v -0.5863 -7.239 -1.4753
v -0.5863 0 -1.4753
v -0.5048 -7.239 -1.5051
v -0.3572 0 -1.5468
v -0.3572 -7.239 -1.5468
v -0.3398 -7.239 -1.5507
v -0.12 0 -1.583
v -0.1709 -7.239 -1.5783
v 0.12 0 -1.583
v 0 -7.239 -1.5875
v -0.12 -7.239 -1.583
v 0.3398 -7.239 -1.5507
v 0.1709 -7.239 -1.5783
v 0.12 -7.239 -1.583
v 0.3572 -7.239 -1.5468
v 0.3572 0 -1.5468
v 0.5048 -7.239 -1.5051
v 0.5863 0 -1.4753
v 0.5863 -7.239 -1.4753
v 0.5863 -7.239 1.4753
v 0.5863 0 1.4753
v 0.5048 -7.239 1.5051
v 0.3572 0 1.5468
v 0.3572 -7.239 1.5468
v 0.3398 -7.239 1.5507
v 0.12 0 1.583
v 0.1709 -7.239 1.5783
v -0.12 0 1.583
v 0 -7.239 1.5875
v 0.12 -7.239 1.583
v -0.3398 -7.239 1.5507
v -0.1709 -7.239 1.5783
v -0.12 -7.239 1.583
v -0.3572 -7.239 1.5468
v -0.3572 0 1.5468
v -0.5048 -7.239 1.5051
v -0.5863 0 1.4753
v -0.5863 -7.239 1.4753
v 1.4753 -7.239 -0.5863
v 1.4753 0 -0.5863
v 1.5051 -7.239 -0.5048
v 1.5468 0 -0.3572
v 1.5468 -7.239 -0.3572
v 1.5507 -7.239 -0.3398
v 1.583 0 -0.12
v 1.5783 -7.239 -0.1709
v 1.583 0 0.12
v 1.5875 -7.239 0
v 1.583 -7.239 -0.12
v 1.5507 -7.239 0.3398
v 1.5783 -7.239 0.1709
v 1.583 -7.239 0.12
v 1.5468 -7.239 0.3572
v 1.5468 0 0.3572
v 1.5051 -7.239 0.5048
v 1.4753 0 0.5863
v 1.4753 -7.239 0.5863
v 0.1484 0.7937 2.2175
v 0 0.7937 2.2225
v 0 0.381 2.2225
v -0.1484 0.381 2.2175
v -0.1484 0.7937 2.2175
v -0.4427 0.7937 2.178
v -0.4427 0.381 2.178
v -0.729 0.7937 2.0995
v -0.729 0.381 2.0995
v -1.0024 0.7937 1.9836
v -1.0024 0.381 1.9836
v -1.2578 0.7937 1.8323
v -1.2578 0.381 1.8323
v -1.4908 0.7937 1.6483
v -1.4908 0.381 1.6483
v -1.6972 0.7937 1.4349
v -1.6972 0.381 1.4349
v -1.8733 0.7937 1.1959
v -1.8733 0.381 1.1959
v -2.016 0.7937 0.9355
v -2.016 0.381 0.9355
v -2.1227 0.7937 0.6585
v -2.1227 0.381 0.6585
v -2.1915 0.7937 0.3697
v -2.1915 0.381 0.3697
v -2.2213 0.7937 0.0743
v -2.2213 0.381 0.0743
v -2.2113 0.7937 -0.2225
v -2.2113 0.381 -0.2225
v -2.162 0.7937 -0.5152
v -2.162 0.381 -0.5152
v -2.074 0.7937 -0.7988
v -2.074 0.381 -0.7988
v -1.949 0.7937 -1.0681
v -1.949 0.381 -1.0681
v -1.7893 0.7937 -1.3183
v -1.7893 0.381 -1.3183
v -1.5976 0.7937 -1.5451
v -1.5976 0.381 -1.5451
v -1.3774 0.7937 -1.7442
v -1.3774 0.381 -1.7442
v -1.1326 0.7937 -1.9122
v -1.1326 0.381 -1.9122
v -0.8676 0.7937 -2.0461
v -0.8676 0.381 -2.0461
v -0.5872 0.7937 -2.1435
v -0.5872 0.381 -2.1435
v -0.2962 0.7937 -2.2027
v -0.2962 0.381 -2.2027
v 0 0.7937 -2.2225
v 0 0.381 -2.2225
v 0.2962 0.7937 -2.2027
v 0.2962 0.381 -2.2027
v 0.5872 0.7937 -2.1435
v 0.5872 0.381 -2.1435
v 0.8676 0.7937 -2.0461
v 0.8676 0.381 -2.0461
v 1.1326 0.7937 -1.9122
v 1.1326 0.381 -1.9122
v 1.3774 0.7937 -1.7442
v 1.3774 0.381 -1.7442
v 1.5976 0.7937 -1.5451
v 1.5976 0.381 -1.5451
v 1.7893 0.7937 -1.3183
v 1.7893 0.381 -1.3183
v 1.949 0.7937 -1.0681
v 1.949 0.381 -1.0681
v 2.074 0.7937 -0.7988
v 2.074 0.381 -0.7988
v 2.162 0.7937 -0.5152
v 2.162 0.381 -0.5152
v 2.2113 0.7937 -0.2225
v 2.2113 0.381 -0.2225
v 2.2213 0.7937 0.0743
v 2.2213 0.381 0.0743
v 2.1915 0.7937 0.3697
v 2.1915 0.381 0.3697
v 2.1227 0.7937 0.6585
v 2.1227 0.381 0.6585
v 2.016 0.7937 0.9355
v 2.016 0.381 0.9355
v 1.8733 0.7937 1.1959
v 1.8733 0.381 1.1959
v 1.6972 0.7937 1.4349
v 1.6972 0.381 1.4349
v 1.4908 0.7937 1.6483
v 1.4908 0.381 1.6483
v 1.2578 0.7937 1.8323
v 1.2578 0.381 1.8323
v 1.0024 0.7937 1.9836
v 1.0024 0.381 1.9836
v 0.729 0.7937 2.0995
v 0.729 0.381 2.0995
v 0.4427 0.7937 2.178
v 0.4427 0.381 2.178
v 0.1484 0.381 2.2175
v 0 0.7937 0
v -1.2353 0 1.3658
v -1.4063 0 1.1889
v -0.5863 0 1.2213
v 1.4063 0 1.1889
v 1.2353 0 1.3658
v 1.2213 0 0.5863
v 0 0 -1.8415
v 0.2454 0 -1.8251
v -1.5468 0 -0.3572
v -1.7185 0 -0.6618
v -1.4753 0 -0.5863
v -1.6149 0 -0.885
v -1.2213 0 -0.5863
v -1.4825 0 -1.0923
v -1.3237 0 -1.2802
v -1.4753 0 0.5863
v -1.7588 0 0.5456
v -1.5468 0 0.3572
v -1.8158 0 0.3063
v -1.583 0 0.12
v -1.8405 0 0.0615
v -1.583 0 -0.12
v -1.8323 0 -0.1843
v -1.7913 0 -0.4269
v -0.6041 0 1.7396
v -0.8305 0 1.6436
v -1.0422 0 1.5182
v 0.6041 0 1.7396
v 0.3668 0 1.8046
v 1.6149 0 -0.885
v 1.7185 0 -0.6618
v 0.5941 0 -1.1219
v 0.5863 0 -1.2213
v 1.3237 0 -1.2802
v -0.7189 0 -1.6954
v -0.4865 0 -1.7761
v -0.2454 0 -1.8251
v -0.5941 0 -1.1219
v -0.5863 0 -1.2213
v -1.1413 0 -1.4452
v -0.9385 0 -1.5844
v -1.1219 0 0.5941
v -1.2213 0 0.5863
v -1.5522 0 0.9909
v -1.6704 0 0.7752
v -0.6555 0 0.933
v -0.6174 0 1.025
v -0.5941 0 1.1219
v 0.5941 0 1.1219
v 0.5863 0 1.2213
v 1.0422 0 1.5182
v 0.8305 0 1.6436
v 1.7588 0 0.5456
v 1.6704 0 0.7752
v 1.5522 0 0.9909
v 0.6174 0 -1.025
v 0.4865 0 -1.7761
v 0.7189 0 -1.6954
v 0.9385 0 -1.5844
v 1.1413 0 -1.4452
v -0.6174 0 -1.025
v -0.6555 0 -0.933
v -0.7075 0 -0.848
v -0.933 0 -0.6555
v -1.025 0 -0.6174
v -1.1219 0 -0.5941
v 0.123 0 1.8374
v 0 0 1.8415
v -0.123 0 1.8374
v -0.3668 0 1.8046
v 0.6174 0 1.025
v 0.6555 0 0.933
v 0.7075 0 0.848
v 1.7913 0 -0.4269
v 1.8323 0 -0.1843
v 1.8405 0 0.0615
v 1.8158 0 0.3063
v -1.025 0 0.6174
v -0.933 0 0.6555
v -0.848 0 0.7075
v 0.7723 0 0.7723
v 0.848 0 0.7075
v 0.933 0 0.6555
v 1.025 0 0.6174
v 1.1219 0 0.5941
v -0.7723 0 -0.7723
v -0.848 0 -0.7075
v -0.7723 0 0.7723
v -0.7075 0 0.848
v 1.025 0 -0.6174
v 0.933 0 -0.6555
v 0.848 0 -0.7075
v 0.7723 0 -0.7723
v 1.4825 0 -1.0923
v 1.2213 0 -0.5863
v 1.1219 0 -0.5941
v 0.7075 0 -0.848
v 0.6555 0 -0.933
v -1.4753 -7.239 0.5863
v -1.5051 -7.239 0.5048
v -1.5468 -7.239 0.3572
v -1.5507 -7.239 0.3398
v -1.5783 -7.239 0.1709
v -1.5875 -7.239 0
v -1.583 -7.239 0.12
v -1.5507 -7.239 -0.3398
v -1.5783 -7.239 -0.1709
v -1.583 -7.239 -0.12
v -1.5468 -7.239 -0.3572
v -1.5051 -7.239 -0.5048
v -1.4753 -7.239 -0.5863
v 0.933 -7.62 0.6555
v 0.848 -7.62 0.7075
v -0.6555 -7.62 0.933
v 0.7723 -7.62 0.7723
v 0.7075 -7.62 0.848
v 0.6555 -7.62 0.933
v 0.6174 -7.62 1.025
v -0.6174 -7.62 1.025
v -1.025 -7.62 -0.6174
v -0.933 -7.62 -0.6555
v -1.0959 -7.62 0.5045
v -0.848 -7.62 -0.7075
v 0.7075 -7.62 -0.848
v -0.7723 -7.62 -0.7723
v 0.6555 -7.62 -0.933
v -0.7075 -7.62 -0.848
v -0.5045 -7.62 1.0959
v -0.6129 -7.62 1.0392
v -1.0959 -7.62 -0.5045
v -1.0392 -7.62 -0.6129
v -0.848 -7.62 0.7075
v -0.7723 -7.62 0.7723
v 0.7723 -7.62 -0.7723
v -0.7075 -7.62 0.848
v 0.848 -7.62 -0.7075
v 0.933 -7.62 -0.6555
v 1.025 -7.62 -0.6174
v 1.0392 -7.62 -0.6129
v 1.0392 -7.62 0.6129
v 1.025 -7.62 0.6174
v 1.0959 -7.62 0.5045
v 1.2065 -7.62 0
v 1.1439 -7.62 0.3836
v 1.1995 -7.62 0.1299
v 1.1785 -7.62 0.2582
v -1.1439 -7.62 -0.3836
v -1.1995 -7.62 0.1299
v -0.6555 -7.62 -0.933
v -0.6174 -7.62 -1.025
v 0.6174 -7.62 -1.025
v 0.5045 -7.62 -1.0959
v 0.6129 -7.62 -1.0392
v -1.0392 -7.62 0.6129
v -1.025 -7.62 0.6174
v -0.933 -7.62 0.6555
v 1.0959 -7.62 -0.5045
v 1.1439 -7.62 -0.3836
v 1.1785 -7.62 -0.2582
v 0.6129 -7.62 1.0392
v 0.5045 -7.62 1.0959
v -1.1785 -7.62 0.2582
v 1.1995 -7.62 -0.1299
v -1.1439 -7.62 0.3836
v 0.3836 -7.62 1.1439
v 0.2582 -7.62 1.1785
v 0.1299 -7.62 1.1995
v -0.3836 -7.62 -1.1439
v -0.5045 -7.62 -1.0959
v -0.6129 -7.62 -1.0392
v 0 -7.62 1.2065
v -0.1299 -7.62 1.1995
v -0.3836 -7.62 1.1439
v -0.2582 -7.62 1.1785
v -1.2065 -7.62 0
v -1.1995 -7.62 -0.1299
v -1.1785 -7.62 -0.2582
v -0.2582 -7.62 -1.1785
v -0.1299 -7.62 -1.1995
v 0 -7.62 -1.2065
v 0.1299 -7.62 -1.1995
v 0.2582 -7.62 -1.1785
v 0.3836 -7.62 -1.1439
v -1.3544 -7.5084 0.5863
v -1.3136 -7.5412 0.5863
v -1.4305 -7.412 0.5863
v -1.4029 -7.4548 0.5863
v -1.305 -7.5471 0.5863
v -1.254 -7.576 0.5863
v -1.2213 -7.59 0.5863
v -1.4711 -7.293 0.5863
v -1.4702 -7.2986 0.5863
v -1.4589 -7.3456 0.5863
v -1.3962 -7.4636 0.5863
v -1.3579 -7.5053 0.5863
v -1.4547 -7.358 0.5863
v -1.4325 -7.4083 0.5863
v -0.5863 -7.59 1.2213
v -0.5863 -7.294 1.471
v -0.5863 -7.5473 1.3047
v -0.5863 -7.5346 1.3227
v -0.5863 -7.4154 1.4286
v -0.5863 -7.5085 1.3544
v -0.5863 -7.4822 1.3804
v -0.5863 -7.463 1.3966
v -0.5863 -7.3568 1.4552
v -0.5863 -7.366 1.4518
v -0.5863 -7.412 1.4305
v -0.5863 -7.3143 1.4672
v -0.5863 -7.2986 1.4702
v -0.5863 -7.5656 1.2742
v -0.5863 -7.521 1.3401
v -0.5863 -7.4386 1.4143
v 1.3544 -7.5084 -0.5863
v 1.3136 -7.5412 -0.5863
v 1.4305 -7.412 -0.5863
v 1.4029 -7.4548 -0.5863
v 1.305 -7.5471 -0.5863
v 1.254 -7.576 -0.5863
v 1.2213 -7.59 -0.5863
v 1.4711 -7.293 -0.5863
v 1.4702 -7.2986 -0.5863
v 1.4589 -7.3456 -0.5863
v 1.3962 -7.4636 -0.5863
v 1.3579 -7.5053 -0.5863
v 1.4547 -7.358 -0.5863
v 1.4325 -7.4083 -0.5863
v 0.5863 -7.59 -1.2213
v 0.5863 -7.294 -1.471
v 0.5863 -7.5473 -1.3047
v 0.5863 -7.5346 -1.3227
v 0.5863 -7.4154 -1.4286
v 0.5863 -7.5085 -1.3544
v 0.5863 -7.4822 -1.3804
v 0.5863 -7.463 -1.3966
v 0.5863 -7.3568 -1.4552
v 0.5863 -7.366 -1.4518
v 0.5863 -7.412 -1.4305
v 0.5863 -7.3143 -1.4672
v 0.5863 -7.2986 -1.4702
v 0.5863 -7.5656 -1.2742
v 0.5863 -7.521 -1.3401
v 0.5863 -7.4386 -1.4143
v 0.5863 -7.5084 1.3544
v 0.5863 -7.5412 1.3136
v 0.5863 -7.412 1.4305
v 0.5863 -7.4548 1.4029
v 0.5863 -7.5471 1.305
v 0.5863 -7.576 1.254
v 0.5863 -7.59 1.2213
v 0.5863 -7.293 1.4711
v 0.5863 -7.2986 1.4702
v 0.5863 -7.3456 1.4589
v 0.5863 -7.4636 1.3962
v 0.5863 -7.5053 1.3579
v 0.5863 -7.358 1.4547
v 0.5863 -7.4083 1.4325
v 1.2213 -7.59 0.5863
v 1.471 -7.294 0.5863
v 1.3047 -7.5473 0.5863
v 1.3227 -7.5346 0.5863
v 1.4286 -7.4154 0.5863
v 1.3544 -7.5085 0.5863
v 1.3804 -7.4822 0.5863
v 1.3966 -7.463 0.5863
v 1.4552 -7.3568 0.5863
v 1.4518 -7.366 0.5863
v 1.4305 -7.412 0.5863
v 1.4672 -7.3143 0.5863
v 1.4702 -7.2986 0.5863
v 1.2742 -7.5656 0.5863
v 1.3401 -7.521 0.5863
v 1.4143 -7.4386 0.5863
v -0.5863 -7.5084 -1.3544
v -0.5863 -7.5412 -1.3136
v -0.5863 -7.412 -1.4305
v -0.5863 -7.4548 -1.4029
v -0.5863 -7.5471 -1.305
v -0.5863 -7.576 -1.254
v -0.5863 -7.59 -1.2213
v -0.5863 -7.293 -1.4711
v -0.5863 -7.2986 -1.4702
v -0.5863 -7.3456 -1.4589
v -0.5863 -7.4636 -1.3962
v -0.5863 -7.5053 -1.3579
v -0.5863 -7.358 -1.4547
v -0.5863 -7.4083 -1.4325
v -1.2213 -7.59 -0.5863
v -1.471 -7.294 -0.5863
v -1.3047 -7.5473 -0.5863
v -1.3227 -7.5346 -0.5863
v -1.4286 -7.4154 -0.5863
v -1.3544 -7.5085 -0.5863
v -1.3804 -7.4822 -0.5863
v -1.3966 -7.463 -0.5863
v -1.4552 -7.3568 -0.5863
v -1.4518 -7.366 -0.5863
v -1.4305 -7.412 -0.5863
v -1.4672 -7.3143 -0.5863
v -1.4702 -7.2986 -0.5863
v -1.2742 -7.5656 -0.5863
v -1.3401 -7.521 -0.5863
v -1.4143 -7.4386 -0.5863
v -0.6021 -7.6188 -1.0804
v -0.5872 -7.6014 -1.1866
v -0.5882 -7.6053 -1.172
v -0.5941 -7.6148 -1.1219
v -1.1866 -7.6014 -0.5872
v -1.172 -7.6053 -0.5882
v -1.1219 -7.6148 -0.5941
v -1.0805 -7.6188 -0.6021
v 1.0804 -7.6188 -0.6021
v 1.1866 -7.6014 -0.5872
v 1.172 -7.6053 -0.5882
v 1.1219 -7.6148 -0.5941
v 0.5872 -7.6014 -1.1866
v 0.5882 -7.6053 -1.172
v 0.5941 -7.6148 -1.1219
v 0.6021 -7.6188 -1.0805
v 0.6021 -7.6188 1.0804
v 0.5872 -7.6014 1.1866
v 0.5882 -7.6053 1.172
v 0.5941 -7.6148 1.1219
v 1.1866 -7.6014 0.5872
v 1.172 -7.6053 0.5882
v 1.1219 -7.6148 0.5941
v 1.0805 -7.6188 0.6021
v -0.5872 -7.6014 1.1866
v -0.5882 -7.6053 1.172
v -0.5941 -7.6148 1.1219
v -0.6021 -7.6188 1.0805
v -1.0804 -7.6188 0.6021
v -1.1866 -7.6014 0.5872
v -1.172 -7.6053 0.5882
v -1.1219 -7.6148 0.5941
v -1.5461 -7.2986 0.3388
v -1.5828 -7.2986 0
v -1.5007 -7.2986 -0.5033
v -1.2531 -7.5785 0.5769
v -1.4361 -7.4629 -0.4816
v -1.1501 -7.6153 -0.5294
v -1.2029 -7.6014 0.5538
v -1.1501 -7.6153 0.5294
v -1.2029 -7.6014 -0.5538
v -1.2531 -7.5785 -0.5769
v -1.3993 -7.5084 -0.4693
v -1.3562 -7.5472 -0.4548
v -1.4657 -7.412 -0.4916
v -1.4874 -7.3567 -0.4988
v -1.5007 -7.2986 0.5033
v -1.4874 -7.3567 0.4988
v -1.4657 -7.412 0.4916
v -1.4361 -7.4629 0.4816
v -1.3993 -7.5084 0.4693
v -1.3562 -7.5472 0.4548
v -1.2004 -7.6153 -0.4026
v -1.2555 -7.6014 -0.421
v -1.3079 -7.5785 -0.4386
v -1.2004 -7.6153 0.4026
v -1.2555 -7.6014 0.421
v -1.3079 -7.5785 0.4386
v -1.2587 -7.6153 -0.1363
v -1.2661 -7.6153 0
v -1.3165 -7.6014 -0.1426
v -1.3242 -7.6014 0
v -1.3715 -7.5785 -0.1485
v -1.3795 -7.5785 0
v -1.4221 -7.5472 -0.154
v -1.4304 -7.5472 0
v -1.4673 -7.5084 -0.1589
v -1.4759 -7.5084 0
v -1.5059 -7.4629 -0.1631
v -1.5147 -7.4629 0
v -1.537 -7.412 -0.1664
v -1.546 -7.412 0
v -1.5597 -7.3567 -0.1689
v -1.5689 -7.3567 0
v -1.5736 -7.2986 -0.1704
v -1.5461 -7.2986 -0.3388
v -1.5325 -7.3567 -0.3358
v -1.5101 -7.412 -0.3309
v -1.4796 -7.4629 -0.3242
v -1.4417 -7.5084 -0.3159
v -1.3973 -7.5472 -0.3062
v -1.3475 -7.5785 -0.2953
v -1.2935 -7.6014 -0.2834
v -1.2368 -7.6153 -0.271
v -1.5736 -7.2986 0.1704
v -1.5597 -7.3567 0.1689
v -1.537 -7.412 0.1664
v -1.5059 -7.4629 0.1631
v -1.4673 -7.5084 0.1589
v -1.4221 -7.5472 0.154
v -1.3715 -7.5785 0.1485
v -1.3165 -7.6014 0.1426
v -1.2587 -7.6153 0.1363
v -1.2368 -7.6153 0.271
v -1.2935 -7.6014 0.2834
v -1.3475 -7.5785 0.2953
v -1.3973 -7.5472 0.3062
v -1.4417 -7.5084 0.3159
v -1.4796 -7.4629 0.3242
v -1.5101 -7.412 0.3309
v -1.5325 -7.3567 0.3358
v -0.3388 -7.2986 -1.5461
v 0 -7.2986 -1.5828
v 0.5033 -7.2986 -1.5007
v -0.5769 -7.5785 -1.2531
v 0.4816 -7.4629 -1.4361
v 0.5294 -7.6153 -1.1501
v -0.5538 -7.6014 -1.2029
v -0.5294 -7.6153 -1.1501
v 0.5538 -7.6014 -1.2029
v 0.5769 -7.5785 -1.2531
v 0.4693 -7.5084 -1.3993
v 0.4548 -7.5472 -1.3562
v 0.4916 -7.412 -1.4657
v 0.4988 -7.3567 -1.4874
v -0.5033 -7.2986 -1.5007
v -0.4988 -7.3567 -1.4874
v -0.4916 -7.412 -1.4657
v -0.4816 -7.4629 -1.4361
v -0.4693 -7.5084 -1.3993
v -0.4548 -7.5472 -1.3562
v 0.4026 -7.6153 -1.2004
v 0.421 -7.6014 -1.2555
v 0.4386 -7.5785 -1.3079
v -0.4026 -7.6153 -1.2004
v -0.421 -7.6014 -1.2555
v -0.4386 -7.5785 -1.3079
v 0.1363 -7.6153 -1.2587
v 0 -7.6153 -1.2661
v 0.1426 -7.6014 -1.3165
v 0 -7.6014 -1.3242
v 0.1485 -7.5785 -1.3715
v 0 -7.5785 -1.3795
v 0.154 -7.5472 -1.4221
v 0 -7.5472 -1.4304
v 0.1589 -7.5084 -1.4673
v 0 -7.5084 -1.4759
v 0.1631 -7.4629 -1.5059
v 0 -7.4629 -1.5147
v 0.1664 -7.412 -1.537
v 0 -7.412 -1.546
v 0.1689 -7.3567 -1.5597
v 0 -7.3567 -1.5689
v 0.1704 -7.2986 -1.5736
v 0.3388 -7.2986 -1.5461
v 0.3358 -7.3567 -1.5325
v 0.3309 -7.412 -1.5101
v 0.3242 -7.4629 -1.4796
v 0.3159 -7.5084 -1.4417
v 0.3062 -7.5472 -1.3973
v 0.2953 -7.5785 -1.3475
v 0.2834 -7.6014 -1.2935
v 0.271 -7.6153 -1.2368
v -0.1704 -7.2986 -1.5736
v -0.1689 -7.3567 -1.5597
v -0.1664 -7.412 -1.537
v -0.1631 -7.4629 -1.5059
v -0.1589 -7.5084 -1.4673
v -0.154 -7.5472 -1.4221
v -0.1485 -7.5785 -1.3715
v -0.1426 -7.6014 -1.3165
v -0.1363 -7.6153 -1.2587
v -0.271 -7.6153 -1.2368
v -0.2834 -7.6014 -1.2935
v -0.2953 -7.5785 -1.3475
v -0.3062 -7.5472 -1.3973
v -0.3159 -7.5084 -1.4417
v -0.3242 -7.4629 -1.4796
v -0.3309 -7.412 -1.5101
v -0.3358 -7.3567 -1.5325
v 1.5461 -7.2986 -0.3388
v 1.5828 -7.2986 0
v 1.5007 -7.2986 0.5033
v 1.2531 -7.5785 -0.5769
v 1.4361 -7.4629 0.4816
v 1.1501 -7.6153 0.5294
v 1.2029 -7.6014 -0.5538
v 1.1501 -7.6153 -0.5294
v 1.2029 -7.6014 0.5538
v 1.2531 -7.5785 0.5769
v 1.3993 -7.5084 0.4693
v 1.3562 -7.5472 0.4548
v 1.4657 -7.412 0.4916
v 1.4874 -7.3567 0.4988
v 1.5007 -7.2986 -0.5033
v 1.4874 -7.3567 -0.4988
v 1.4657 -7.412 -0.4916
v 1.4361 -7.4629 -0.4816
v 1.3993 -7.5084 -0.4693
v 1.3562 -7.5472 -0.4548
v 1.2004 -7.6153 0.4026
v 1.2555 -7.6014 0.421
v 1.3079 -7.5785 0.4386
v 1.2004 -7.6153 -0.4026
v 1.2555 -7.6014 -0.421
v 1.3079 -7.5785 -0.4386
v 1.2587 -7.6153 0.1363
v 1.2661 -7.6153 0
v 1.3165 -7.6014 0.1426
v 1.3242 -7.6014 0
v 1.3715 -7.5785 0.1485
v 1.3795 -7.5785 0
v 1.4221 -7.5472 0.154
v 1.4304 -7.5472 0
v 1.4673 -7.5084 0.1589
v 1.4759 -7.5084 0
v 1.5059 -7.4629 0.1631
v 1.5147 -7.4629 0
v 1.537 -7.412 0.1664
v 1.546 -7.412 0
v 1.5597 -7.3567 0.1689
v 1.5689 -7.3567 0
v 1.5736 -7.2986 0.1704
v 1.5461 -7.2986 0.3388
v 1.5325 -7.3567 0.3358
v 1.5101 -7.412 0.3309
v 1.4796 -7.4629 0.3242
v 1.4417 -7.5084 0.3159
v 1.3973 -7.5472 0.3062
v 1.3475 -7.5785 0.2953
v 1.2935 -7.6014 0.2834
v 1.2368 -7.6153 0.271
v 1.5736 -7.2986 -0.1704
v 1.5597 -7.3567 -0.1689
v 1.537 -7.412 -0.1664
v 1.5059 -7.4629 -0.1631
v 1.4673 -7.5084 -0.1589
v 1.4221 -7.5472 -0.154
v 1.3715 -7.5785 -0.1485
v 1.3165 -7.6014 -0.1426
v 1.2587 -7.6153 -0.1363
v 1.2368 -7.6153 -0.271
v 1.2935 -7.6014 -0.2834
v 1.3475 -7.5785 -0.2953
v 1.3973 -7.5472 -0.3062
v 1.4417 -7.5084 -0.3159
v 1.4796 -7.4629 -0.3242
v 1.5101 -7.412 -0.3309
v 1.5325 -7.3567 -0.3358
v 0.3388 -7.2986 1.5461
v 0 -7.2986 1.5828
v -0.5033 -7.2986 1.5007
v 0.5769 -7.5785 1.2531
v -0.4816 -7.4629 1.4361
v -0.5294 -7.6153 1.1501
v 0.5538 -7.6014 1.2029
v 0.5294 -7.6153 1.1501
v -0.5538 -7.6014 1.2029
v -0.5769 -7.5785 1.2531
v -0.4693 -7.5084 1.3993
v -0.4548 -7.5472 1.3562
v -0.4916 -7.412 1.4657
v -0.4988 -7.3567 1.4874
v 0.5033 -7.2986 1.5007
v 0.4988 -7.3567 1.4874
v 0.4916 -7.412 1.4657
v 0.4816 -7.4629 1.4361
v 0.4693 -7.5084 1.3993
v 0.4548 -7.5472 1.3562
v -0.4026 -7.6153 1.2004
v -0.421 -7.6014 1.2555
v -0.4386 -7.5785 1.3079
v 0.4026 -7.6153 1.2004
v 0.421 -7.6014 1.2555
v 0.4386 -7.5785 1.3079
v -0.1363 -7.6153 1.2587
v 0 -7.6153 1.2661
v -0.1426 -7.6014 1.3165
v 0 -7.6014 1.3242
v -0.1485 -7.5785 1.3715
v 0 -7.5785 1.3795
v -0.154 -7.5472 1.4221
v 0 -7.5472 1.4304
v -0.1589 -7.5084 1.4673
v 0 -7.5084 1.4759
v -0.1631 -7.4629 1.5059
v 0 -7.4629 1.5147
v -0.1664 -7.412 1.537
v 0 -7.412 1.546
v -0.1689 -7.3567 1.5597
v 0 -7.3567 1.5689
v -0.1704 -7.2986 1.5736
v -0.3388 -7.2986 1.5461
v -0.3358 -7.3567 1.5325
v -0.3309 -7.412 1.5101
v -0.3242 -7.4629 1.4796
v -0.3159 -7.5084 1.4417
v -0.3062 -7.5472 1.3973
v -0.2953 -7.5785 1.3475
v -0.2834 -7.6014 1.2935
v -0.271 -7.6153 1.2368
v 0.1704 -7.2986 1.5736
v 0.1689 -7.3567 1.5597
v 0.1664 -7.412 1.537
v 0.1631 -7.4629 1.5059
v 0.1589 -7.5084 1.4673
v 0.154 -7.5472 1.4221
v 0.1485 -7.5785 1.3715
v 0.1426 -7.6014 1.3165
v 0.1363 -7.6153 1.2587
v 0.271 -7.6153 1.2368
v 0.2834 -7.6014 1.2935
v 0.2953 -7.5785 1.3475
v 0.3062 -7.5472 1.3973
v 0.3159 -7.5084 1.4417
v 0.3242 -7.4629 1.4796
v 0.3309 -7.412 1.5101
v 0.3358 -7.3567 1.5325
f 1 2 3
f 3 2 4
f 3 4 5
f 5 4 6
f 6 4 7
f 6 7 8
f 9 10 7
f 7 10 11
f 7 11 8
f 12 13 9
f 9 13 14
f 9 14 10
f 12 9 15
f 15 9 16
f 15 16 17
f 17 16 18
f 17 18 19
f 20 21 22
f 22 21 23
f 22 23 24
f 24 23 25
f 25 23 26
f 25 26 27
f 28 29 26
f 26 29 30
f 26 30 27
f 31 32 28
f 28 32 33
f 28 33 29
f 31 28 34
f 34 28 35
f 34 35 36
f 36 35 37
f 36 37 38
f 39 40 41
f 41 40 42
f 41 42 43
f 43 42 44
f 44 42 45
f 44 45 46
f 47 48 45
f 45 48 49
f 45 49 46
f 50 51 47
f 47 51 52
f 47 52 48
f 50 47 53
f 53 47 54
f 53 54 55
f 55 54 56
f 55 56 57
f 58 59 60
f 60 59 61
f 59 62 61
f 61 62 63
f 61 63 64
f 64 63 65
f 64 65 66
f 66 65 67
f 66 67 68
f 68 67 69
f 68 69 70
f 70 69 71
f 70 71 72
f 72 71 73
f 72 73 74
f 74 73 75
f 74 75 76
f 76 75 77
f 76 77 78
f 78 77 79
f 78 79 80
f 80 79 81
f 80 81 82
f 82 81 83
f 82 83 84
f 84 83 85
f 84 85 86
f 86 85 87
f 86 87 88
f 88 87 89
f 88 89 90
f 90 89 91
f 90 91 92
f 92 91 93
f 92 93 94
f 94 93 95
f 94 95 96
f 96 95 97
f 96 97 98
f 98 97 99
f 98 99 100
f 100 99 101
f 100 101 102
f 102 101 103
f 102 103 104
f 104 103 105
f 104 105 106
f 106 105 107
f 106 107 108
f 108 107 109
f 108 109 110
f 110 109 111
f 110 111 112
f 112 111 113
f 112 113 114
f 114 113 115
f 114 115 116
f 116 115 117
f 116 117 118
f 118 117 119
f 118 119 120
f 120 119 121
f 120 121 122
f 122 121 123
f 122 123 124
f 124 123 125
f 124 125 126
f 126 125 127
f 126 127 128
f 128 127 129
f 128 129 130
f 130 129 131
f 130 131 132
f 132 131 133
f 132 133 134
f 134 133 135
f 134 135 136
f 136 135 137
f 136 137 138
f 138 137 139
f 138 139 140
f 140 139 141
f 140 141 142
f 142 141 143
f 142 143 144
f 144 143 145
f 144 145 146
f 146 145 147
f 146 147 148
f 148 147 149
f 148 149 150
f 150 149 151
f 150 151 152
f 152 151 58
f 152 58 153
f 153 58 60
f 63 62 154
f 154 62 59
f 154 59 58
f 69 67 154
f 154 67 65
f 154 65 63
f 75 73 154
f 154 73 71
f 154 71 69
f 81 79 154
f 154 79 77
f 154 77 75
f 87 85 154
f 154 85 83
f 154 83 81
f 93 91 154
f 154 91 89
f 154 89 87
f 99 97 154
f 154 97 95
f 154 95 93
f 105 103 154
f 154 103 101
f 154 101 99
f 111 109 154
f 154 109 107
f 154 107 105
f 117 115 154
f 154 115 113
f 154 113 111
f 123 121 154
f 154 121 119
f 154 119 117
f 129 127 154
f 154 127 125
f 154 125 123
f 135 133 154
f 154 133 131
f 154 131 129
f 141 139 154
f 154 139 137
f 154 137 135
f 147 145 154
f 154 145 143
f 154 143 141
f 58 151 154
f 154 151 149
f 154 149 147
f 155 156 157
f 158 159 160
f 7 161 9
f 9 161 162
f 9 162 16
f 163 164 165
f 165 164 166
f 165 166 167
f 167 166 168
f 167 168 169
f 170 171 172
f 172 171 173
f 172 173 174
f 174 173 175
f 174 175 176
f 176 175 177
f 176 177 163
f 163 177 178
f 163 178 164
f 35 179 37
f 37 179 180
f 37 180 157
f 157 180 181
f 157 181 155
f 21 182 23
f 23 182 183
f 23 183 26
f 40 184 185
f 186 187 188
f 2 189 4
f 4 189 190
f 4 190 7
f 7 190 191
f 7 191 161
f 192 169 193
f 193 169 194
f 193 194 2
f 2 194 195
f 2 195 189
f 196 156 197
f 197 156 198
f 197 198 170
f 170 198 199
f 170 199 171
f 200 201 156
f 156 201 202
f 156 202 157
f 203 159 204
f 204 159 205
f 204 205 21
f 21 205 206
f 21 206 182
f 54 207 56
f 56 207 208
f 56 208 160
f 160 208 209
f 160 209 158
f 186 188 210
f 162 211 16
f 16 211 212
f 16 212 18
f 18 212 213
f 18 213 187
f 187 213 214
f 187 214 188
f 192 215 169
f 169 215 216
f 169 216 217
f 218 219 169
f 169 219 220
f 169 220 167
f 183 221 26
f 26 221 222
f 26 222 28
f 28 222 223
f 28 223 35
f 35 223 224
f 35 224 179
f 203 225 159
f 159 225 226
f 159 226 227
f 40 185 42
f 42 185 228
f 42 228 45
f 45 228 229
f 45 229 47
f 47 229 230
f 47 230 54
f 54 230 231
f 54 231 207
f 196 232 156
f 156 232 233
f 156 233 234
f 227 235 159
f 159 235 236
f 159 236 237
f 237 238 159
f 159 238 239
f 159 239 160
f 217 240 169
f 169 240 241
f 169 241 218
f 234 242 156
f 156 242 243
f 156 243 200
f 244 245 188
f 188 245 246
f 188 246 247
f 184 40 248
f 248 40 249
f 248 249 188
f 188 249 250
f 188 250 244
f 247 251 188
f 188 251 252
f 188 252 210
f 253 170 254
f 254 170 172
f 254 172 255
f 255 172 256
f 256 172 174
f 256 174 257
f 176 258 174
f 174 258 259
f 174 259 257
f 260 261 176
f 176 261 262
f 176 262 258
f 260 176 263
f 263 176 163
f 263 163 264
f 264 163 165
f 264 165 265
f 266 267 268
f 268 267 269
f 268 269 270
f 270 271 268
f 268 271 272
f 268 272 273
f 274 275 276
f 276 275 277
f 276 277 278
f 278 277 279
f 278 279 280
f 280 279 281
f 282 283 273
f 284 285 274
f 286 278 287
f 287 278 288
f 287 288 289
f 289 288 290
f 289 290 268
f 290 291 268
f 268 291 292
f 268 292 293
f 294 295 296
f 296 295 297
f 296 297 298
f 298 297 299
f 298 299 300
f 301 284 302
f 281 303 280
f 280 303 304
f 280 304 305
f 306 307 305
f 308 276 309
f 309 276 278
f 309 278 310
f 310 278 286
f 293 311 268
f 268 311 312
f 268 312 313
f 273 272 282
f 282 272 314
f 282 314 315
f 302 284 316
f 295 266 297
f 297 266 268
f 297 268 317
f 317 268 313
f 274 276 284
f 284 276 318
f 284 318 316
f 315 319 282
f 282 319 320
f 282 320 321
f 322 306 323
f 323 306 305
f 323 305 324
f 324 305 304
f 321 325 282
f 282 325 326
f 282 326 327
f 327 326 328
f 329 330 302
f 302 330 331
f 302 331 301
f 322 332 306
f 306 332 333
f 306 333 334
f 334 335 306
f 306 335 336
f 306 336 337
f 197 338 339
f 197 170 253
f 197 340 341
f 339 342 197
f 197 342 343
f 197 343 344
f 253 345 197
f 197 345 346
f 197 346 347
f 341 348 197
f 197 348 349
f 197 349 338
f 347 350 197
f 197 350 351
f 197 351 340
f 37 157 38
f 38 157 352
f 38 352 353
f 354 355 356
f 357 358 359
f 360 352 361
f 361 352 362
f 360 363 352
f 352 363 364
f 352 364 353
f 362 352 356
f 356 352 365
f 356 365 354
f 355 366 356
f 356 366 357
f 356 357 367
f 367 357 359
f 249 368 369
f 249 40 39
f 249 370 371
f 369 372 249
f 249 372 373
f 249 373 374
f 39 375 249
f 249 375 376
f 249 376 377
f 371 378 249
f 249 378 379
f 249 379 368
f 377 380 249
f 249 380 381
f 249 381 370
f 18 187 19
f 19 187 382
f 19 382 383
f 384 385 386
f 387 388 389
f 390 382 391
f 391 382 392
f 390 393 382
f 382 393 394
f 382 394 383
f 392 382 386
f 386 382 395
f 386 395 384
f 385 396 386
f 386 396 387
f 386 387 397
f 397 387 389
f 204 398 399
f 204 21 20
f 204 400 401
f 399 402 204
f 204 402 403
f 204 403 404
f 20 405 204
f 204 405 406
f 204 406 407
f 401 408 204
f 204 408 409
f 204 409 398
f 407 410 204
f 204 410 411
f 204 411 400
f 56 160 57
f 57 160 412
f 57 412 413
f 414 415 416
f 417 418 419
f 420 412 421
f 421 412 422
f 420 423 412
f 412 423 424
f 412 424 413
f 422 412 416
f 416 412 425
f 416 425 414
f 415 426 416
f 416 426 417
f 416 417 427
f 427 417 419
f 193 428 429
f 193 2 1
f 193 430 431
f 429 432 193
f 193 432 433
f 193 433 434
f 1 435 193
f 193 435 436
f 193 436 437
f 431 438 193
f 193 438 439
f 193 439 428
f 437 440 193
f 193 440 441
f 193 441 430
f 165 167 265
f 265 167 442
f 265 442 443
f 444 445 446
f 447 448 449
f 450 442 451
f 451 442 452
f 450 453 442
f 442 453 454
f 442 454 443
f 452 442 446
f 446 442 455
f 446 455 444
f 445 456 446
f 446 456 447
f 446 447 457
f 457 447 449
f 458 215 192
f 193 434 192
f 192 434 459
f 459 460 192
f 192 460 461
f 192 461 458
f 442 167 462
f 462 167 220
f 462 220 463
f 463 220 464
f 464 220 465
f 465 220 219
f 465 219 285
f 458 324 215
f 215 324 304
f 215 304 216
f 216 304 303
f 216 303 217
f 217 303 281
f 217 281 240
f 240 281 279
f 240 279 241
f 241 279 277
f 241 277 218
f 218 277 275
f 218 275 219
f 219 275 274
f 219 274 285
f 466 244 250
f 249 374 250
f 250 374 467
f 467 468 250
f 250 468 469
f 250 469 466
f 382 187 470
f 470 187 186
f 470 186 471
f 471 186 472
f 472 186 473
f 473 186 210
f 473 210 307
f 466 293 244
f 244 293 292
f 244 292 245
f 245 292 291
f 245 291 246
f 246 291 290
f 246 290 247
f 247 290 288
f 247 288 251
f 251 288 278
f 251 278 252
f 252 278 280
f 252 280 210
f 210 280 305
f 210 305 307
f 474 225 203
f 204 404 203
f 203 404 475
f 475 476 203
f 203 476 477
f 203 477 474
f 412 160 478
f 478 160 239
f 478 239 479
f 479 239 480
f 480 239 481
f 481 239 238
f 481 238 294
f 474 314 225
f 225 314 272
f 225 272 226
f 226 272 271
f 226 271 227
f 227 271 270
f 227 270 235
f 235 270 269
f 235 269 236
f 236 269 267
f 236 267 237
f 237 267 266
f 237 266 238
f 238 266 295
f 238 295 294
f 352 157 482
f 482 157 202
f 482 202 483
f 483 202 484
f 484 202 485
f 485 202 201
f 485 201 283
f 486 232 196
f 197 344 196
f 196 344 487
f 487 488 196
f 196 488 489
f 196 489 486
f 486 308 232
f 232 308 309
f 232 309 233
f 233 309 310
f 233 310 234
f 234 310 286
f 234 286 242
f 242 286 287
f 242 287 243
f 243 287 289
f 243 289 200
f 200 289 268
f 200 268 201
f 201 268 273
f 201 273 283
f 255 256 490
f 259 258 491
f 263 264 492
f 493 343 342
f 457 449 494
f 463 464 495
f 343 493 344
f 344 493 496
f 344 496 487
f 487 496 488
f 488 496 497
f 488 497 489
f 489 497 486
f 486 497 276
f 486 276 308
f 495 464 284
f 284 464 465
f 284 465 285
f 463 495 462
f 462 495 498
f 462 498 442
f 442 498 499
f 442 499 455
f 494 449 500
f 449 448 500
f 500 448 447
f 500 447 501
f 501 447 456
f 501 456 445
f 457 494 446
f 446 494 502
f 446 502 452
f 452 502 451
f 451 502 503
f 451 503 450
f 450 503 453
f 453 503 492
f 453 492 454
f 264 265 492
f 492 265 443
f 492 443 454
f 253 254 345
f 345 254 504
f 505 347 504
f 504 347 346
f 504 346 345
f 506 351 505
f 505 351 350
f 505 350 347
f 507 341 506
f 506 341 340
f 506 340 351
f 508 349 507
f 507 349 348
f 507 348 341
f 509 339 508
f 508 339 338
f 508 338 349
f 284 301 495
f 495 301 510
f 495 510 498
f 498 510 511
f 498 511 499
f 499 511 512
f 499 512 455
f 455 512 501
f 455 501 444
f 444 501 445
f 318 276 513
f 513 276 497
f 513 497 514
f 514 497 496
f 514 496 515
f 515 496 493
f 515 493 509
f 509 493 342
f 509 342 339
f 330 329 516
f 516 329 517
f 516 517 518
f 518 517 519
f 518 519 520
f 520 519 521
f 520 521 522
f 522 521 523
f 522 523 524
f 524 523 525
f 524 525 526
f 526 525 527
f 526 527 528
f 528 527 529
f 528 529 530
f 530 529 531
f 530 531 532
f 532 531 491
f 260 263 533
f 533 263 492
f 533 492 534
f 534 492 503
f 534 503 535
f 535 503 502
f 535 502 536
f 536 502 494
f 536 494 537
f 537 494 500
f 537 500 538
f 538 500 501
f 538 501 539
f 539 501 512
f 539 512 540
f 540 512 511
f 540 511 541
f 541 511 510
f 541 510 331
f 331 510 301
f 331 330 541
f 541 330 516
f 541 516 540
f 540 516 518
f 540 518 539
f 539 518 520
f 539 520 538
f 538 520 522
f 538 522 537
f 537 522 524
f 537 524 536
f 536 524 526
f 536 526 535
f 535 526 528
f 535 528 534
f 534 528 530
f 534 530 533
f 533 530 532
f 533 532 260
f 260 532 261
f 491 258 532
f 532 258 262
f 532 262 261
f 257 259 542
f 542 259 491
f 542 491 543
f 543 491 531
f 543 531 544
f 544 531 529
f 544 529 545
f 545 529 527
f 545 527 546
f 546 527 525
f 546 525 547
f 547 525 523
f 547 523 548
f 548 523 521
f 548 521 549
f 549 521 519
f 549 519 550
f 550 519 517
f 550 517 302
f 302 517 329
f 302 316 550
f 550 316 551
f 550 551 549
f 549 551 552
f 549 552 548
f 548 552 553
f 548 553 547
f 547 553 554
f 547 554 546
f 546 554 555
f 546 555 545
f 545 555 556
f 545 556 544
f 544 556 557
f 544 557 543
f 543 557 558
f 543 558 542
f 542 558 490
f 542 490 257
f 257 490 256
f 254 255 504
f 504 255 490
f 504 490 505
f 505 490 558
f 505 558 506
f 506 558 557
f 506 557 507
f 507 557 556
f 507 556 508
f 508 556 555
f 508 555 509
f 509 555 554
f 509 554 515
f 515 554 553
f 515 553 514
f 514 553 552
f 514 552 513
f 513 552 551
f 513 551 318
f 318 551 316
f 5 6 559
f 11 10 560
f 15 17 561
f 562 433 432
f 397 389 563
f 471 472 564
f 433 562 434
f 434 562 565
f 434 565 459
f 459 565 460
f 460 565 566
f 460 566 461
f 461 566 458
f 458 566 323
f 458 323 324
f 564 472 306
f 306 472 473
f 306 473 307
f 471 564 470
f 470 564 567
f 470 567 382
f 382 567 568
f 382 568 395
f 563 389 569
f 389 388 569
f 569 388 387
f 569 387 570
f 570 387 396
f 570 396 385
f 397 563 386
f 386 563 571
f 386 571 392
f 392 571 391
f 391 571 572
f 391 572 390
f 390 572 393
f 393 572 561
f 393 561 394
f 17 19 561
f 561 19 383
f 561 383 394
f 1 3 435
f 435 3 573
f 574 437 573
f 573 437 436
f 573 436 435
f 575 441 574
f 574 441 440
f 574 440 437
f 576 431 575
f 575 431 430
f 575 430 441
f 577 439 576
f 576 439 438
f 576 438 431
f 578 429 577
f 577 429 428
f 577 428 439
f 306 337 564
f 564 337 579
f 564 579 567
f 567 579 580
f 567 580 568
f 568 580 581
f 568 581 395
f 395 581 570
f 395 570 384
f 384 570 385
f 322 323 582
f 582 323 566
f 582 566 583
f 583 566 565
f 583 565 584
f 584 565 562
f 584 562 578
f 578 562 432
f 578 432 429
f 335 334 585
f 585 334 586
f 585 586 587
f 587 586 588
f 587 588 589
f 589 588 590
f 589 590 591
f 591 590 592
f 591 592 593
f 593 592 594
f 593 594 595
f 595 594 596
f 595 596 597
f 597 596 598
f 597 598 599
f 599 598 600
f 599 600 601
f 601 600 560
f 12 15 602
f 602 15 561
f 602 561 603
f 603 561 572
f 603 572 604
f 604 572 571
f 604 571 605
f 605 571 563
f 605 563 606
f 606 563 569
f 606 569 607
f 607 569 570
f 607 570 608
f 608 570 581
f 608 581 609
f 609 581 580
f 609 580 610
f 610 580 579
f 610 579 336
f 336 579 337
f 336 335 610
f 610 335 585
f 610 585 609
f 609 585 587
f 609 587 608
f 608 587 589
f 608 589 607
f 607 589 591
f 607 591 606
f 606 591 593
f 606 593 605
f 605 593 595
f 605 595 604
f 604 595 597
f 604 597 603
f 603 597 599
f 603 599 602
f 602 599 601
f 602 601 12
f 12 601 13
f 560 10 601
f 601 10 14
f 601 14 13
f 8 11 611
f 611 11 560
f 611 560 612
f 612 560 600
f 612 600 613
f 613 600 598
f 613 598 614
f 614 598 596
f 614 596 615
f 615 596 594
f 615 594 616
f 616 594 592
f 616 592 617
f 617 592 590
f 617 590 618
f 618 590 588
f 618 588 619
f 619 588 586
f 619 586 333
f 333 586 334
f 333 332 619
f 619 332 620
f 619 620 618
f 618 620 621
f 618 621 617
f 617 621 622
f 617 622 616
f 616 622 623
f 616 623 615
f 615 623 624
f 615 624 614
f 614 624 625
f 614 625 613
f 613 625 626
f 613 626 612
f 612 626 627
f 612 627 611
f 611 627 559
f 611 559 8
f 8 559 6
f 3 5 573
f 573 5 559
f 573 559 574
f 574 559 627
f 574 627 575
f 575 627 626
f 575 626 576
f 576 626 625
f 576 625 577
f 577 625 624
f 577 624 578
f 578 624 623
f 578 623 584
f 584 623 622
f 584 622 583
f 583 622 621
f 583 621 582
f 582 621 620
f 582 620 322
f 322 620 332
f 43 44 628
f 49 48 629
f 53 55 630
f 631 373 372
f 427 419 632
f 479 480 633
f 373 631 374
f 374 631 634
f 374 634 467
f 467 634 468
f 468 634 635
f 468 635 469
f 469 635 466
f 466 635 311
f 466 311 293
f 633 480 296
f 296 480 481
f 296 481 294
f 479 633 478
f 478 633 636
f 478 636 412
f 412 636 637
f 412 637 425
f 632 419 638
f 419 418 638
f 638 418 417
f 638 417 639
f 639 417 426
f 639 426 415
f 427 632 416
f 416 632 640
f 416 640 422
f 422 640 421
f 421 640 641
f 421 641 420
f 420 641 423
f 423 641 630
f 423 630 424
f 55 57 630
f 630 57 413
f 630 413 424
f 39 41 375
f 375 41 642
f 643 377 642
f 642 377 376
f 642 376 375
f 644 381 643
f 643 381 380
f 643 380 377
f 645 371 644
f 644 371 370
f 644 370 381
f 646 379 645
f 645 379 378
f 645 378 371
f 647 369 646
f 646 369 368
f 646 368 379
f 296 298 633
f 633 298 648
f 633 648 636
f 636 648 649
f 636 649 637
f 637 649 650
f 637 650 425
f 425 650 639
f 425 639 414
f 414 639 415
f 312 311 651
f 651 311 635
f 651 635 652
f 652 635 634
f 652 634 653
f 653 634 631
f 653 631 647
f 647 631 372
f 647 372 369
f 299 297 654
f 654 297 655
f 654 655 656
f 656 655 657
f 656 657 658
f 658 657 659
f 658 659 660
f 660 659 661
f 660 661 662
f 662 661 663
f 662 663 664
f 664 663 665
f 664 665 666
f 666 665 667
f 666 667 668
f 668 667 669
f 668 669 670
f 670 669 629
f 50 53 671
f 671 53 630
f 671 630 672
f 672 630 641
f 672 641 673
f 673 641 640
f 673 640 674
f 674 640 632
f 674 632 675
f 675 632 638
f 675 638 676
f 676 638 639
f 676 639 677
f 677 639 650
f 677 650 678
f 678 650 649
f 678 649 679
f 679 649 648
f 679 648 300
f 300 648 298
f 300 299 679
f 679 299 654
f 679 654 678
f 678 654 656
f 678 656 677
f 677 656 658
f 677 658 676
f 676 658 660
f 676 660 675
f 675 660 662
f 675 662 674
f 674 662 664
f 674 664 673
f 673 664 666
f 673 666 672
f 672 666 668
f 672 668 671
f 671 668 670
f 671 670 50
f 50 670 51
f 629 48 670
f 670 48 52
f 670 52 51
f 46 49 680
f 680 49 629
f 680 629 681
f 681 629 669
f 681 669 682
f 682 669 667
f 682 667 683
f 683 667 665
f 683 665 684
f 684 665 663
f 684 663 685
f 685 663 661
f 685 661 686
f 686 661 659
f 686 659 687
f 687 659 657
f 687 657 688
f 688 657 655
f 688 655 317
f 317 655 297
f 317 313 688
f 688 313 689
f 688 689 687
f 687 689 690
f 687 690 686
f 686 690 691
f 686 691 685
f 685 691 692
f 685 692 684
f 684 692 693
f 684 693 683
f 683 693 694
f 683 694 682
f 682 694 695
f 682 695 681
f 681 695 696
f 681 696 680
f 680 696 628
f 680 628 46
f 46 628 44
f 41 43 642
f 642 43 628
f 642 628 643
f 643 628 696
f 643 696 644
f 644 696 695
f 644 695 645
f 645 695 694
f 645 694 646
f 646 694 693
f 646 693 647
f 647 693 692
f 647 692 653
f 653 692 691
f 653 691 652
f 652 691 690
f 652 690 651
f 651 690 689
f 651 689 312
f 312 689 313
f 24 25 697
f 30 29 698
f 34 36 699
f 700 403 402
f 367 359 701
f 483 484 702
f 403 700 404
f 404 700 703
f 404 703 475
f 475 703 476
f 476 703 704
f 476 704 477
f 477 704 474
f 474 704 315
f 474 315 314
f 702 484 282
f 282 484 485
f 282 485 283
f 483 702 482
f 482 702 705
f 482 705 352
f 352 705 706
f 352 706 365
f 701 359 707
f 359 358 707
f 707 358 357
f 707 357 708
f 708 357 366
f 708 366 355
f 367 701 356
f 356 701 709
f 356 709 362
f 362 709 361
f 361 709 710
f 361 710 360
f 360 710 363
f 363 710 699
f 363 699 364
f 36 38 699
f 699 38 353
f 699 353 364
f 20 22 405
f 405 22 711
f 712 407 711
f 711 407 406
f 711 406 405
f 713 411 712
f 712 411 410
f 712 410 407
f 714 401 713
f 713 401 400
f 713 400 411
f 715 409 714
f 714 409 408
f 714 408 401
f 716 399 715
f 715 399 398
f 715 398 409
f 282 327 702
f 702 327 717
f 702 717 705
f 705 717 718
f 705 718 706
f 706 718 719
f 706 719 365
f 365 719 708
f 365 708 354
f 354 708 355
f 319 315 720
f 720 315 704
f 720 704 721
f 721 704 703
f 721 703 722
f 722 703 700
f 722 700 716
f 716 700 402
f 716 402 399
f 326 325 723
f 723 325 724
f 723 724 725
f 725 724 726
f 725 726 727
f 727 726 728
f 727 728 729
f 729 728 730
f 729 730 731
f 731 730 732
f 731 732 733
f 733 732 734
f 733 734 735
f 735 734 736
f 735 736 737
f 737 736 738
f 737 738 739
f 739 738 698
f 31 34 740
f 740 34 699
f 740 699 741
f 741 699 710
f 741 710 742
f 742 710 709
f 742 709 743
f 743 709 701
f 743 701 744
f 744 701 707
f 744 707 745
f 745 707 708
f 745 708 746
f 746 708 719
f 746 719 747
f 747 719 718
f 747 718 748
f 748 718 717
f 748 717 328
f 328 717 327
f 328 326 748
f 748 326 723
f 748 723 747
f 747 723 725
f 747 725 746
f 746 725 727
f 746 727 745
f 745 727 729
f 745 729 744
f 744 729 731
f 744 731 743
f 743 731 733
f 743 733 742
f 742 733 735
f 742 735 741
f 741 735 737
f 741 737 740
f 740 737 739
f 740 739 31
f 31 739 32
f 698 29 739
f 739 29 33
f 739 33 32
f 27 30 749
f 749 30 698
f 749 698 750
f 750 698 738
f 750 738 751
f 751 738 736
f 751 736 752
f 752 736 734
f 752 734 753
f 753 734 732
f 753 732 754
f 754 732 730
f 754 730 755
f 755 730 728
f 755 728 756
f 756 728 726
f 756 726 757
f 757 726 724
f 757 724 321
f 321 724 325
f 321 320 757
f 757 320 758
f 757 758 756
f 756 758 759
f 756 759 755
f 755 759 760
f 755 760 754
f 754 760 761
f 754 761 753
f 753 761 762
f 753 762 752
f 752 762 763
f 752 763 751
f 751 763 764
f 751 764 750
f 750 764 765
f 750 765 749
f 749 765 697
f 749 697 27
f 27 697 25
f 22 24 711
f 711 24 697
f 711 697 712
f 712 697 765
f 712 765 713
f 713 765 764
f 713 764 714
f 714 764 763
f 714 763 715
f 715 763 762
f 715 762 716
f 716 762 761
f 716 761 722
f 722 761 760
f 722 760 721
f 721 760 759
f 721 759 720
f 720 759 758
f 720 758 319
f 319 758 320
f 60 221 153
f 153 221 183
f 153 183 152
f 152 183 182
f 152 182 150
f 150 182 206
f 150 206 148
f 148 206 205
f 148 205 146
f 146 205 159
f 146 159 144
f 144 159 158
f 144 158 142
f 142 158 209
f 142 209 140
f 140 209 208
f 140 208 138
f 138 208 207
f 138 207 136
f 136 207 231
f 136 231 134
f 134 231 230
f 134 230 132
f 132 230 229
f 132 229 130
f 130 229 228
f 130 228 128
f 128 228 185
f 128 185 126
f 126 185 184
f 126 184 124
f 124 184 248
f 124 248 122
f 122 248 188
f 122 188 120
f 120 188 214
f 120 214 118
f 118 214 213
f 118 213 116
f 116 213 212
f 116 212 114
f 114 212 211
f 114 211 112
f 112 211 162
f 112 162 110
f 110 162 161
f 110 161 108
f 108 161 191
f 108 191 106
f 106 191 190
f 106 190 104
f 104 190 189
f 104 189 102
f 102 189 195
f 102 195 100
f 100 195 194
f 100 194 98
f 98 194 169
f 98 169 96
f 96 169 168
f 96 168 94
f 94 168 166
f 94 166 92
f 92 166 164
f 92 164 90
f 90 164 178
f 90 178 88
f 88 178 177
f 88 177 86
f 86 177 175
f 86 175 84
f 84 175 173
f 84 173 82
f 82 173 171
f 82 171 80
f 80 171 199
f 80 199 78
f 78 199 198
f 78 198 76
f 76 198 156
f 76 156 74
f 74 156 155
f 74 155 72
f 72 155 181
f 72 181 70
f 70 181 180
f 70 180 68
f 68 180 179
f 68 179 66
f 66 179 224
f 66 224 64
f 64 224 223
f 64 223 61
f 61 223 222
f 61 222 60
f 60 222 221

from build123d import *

# Parameters (mm, degrees)
SKETCH1_R           = 2.2225
BOSS_EXTRUDE1_DEPTH = 0.79375
SKETCH2_R           = 1.5875
BOSS_EXTRUDE2_DEPTH = 7.62
CUT_EXTRUDE2_START  = -7.62
CUT_EXTRUDE2_DEPTH  = 7.62
FILLET1_R           = 0.635
FILLET2_R           = 0.381
CHAMFER1_SIZE       = 0.381


with BuildPart() as part:
    # Sketch1 → Boss-Extrude1 (new body)
    with BuildSketch(Plane(origin=(0, 0, 0), x_dir=(1, 0, 0), z_dir=(0, 1, 0))):
        with Locations(Location((0, 0, 0), (0, 0, 270))):
            Circle(SKETCH1_R)
    extrude(amount=BOSS_EXTRUDE1_DEPTH)

    # Sketch2 → Boss-Extrude2 (add)
    with BuildSketch(Plane.XZ):
        with Locations(Location((0, 0, 0), (0, 0, 90))):
            Circle(SKETCH2_R)
    extrude(amount=BOSS_EXTRUDE2_DEPTH)

    # Sketch3 → Cut-Extrude2 (cut)
    with BuildSketch(Plane.XZ.offset(7.62).offset(CUT_EXTRUDE2_START)):
        with BuildLine():
            Line((-0.586275376, 1.475275376), (-0.586275376, 0.586275376))
            Line((-0.586275376, 0.586275376), (-1.475275376, 0.586275376))
            ThreePointArc((-1.475275376, 0.586275376), (-1.122532015, 1.122532015), (-0.586275376, 1.475275376))
        make_face()
        with BuildLine():
            Line((-1.475275376, -0.586275376), (-0.586275376, -0.586275376))
            Line((-0.586275376, -0.586275376), (-0.586275376, -1.475275376))
            ThreePointArc((-0.586275376, -1.475275376), (-1.122532015, -1.122532015), (-1.475275376, -0.586275376))
        make_face()
        with BuildLine():
            Line((0.586275376, 1.475275376), (0.586275376, 0.586275376))
            Line((0.586275376, 0.586275376), (1.475275376, 0.586275376))
            ThreePointArc((1.475275376, 0.586275376), (1.122532015, 1.122532015), (0.586275376, 1.475275376))
        make_face()
        with BuildLine():
            Line((0.586275376, -1.475275376), (0.586275376, -0.586275376))
            Line((0.586275376, -0.586275376), (1.475275376, -0.586275376))
            ThreePointArc((1.475275376, -0.586275376), (1.122532015, -1.122532015), (0.586275376, -1.475275376))
        make_face()
    extrude(amount=CUT_EXTRUDE2_DEPTH, mode=Mode.SUBTRACT)

    # Fillet1
    fillet1_edges = [part.edges().sort_by_distance(p)[0] for p in [
        (-0.586275376, -3.81, -0.586275376),
        (0.586275376, -3.81, 0.586275376),
        (0.586275376, -3.81, -0.586275376),
        (-0.586275376, -3.81, 0.586275376),
    ]]
    fillet(fillet1_edges, radius=FILLET1_R)

    # Fillet2
    fillet2_edges = [part.edges().sort_by_distance(p)[0] for p in [
        (-1.5875, -7.62, 0),
        (0, -7.62, -1.5875),
        (1.5875, -7.62, 0),
        (0, -7.62, 1.5875),
    ]]
    fillet(fillet2_edges, radius=FILLET2_R)

    # Chamfer1
    chamfer1_edges = [part.edges().sort_by_distance(p)[0] for p in [
        (0, 0, -2.2225),
    ]]
    chamfer(chamfer1_edges, length=CHAMFER1_SIZE)


solid = part.part
